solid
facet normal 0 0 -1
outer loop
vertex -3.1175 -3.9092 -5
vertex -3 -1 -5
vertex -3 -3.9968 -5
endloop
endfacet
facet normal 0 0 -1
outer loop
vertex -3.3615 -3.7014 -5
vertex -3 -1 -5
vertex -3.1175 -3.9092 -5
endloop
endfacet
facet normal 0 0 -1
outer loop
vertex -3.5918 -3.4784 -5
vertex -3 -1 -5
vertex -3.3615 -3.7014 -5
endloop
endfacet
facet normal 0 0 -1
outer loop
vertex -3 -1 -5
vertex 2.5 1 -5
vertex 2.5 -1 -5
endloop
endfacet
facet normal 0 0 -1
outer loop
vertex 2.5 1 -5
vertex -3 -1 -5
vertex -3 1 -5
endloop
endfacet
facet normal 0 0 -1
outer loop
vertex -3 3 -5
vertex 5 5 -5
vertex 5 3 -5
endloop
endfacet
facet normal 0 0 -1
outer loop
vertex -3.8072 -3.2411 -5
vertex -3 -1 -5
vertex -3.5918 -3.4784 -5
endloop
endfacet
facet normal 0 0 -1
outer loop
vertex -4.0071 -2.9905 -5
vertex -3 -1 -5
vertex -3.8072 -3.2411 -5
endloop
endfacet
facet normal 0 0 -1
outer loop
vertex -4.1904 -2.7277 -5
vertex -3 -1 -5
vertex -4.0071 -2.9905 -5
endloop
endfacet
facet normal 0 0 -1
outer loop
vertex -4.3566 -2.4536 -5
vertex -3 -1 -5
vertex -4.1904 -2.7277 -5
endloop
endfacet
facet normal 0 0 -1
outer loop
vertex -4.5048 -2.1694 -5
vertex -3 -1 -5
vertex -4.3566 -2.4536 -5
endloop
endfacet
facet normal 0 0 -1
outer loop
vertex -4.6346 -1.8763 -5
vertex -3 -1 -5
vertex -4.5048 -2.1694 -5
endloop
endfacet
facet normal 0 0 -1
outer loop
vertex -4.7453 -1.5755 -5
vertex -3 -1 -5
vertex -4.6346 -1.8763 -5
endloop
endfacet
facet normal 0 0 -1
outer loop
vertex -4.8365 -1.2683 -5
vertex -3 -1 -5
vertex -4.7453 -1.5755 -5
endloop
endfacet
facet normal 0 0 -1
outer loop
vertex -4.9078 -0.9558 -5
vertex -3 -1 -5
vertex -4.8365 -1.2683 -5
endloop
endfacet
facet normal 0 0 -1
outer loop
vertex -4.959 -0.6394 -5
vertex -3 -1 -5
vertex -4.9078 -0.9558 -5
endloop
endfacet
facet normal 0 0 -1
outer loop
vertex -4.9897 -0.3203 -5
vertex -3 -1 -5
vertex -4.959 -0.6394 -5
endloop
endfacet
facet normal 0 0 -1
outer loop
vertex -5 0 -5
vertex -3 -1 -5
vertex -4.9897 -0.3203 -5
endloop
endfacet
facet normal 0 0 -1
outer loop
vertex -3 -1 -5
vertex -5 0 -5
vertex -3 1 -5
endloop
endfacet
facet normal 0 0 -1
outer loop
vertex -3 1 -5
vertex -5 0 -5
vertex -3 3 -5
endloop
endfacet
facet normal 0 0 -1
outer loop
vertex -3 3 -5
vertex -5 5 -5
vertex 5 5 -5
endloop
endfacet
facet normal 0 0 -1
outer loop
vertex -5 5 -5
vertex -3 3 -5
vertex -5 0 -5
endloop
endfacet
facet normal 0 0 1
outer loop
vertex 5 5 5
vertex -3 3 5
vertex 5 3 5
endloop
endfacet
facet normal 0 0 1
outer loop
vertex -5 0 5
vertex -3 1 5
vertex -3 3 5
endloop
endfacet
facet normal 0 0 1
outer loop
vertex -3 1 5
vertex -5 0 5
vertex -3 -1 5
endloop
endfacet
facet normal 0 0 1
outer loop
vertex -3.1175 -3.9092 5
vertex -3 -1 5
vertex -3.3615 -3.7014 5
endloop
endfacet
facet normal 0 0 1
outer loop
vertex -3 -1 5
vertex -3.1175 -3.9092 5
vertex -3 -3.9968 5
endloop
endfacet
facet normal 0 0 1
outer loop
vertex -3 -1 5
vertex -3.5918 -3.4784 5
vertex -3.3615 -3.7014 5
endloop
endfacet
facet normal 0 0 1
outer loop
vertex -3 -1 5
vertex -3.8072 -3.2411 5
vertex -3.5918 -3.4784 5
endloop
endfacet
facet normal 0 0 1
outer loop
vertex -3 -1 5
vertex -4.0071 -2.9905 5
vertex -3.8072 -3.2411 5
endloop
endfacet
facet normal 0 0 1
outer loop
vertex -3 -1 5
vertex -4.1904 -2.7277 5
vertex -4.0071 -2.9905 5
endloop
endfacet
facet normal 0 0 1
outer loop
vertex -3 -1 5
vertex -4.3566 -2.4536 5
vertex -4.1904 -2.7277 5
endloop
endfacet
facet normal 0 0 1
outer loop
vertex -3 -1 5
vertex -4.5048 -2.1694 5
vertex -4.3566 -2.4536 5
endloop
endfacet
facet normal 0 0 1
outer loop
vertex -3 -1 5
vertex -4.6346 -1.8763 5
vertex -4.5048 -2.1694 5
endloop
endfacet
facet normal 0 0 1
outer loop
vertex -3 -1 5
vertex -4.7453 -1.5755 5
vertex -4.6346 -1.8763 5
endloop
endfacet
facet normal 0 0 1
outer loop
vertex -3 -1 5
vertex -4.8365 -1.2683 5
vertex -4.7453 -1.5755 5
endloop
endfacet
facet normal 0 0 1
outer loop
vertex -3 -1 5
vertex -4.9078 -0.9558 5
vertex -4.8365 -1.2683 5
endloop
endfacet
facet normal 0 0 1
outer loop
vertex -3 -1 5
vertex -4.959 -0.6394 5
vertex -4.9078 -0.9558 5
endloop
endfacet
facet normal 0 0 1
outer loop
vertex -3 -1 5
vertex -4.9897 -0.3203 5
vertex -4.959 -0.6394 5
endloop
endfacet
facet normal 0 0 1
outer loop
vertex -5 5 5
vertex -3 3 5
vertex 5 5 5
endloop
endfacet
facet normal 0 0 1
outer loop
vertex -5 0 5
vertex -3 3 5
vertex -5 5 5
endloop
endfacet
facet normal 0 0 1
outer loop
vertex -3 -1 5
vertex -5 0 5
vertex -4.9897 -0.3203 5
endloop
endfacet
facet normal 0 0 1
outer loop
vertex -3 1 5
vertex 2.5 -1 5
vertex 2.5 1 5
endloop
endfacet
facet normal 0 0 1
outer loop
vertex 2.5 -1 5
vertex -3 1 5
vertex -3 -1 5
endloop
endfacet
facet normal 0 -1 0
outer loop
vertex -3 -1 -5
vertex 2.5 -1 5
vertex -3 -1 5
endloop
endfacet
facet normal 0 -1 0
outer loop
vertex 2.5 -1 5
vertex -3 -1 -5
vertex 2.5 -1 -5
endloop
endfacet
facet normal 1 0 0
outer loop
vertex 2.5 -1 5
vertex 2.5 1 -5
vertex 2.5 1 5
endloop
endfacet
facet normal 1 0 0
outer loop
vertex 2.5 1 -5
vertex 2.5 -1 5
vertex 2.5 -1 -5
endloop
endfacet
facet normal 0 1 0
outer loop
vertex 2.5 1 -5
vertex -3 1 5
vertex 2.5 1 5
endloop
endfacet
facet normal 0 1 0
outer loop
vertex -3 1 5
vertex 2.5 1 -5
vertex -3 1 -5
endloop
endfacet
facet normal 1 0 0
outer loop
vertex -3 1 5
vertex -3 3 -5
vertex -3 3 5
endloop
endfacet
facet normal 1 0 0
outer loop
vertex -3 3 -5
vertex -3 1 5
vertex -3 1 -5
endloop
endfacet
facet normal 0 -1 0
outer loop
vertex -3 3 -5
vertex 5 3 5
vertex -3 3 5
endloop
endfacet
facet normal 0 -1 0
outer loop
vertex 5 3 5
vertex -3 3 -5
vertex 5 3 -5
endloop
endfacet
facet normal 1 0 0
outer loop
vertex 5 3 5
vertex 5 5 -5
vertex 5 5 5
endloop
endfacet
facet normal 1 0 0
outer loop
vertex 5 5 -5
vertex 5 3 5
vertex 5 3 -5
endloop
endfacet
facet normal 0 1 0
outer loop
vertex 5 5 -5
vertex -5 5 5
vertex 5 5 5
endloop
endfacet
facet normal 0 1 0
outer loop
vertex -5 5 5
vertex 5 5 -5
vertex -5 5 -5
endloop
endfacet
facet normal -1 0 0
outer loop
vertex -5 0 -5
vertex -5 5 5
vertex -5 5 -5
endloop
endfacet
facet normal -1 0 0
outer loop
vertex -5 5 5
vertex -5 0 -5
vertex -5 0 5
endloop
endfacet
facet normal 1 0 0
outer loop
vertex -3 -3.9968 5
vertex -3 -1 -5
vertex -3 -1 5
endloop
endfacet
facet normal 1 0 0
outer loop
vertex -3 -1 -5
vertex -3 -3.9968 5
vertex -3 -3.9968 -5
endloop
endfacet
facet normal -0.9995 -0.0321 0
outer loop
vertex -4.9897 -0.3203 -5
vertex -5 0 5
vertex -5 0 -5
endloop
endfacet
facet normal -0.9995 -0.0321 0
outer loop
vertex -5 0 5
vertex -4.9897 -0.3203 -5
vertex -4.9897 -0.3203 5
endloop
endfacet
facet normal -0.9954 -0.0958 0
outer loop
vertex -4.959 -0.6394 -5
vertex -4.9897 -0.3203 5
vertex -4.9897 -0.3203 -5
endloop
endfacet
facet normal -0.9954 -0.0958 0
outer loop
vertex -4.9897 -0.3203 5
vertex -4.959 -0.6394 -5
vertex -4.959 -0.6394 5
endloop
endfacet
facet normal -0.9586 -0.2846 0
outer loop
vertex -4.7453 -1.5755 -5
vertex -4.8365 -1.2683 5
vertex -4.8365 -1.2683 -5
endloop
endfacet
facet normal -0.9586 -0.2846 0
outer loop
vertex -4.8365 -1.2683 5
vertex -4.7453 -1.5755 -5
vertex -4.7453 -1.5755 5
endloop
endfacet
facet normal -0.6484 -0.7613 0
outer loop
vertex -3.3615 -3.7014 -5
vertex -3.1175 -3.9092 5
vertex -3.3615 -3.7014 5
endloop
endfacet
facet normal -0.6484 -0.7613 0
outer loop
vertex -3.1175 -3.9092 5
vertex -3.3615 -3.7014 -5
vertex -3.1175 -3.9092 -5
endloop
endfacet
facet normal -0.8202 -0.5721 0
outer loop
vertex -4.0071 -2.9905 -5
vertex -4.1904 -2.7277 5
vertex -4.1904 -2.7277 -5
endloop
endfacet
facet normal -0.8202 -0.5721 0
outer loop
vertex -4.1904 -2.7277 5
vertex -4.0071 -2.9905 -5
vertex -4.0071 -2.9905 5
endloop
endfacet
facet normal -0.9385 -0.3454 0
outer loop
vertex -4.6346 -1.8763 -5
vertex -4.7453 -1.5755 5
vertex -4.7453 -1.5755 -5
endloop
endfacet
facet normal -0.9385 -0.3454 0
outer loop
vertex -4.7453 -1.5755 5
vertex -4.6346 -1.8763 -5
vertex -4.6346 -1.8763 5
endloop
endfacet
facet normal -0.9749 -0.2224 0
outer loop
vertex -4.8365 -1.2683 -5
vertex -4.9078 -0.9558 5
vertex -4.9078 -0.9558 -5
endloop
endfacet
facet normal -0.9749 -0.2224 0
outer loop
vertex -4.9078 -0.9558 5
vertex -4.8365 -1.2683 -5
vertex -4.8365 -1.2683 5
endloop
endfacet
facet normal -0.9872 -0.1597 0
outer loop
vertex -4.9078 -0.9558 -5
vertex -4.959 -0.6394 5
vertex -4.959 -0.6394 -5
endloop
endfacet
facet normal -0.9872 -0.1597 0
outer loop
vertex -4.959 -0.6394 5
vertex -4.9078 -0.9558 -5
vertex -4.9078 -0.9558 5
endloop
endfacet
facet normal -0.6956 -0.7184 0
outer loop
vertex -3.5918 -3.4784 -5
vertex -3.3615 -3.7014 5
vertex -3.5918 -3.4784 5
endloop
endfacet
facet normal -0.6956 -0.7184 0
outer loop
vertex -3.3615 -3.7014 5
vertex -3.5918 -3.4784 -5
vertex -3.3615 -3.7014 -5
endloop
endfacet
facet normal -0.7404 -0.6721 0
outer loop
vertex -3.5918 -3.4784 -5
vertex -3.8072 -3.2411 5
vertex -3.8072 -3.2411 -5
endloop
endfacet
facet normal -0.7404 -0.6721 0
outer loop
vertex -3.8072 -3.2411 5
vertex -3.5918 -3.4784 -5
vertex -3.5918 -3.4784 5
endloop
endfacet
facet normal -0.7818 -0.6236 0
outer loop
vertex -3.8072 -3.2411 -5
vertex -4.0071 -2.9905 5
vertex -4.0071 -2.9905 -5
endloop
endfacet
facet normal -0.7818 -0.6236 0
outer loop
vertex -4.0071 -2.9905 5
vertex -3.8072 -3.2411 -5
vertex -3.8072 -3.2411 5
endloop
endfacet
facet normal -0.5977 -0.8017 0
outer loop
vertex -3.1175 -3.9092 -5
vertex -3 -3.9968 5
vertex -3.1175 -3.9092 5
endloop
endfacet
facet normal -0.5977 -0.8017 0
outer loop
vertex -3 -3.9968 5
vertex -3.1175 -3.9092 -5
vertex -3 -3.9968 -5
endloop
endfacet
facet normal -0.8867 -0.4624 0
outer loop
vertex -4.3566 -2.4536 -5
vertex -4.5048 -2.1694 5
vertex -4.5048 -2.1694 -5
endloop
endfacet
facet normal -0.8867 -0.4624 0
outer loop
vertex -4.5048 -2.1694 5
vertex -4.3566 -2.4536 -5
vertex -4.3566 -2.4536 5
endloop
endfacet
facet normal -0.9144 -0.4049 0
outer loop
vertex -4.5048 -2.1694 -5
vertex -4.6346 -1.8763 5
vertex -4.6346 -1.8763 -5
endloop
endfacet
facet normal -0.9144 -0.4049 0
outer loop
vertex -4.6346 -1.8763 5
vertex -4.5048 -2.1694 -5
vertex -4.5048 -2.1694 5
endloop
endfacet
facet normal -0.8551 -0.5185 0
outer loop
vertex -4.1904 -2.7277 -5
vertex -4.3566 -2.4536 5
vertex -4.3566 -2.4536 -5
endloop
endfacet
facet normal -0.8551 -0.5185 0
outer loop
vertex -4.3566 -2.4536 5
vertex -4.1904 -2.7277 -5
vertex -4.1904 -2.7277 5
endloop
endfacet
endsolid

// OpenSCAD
// Generated by SolidPython 1.1.3 on 2025-02-20 04:04:13
$fn=50;


intersection() {
	translate(v = [-5.0000000000, -5.0000000000, -5.0000000000]) {
		linear_extrude(height = 10) {
			polygon(points = [[0, 0], [2.0000000000, 0], [2.0000000000, 4.0000000000], [7.5000000000, 4.0000000000], [7.5000000000, 6.0000000000], [2.0000000000, 6.0000000000], [2.0000000000, 8.0000000000], [10, 8.0000000000], [10, 10], [0, 10]]);
		}
	}
	rotate(a = -90, v = [0, 0, 1]) {
		translate(v = [-5.0000000000, -5.0000000000, -5.0000000000]) {
			linear_extrude(height = 10) {
				polygon(points = [[5.0000000000, 10.0000000000], [5.3203510999, 9.9897269638], [5.6393858084, 9.9589500691], [5.9557931435, 9.9077957850], [6.2682729195, 9.8364743152], [6.5755410901, 9.7452787351], [6.8763350244, 9.6345837867], [7.1694186956, 9.5048443395], [7.4535877600, 9.3565935206], [7.7276745061, 9.1904405245], [7.9905526525, 9.0070681093], [8.2411419765, 8.8072297918], [8.4784127530, 8.5917467505], [8.7013899854, 8.3615044513], [8.9091574123, 8.1174490093], [9.1008612730, 7.8605833006], [9.2757138150, 7.5919628416], [9.4329965319, 7.3126914512], [9.5720631151, 7.0239167156], [9.6923421102, 6.7268252721], [9.7933392652, 6.4226379332], [9.8746395609, 6.1126046698], [9.9359089171, 5.7979994752], [9.9768955647, 5.4801151295], [9.9974310810, 5.1602578879], [9.9974310810, 4.8397421121], [9.9768955647, 4.5198848705], [9.9359089171, 4.2020005248], [9.8746395609, 3.8873953302], [9.7933392652, 3.5773620668], [9.6923421102, 3.2731747279], [9.5720631151, 2.9760832844], [9.4329965319, 2.6873085488], [9.2757138150, 2.4080371584], [9.1008612730, 2.1394166994], [8.9091574123, 1.8825509907], [8.7013899854, 1.6384955487], [8.4784127530, 1.4082532495], [8.2411419765, 1.1927702082], [7.9905526525, 0.9929318907], [7.7276745061, 0.8095594755], [7.4535877600, 0.6434064794], [7.1694186956, 0.4951556605], [6.8763350244, 0.3654162133], [6.5755410901, 0.2547212649], [6.2682729195, 0.1635256848], [5.9557931435, 0.0922042150], [5.6393858084, 0.0410499309], [5.3203510999, 0.0102730362], [5.0000000000, 0.0000000000], [0, 0], [0, 10]]);
			}
		}
	}
}
/***********************************************
*********      SolidPython code:      **********
************************************************
 
from solid import *
from solid.utils import *

import math
import matplotlib.pyplot as plt
import subprocess
import os

class Hole:
    def __init__(self, x, y, radius):
        """
        Hole defined by:
        :param x: x dimension for center point of the circle as a ratio of letter height
        :param y: y dimension for center point of the circle as a ratio of letter height
        :param radius: radius of circle as a ratio of letter height
        """
        self.x = x
        self.y = y
        self.radius = radius

class Letter3D:
    def __init__(self, name, outer_shape_points, height, holes=None):
        """
        3D Letter defined by:
        :param name: name of letter
        :param outer_shape_points: points defining the outer shape of the letter
        :param heigh: size of cube that letter fits inside
        :param holes: list of Holes
        """
        self.name = name
        self.outer_shape_points = outer_shape_points
        self.holes = holes if holes is None else []
        self.height = height


    def generate(self):
        shape = polygon(points=self.outer_shape_points)

        if self.holes:
            for hole in self.holes:
                circle_hole = circle(r=hole.radius*self.height)
                positioned_hole = translate([hole.x*self.height, hole.y*self.height])(circle_hole)
                shape = difference()(shape, positioned_hole)
        
        shape_3d = linear_extrude(height=self.height)(shape)
        shape_3d = translate([-self.height/2, -self.height/2, -self.height/2])(shape_3d)
        return shape_3d
    
    def render(self):
        scad_render_to_file(self.shape, f"output/{self.name}.scad", file_header='$fn=50;')
        subprocess.run(["C:\\Program Files\\OpenSCAD\\openscad.exe", "-o", f"output\\{self.name}.stl", f"output\\{self.name}.scad"])


class TwoLetter3D:
    def __init__(self, height, letterA, letterA_face, letterB=None, letterB_face=None):
        self.height = height
        self.letterA = letterA
        self.letterB = letterB
        self.letterA_face = letterA_face
        self.letterB_face = letterB_face

    def call_letter_generation(self, letter):
        letter = letter.upper()
        function_name = f"letter_{letter}"
        func = globals().get(function_name)
        if func is None:
            raise ValueError(f"No letter generation function defined for letter '{letter}'.")
        else:
            print(func)
        return func(self.height)
    
    def rotate_object(self, face, shape):
        face = face.lower()
        if face == "z":
            return shape
        if face == "x":
            return rotate(a=90, v=[0,1,0])(shape)
        if face == "y":
            return rotate(a=-90, v=[0,0,1])(shape)
        else:
            raise ValueError("Face must be one of 'x', 'y', or 'z'.")

    def render(self):
        if self.letterA:
            letterA3D = self.call_letter_generation(self.letterA)
            letterA3D = self.rotate_object(self.letterA_face, letterA3D)

        if self.letterB:
            letterB3D = self.call_letter_generation(self.letterB)
            letterB3D = self.rotate_object(self.letterB_face, letterB3D)
            combined = intersection()(letterA3D, letterB3D)
            file_name = self.letterA + self.letterB
            scad_render_to_file(combined, f"output/{file_name}.scad", file_header='$fn=50;')
            subprocess.run(["C:\\Program Files\\OpenSCAD\\openscad.exe", "-o", f"output\\{file_name}.stl", f"output\\{file_name}.scad"])
            return
        else:
            file_name = self.letterA
            scad_render_to_file(letterA3D, f"output/{file_name}.scad", file_header='$fn=50;')
            subprocess.run(["C:\\Program Files\\OpenSCAD\\openscad.exe", "-o", f"output\\{file_name}.stl", f"output\\{file_name}.scad"])
    
                

def arc_points(radius, start_angle, end_angle, center=[0,0], num_points=50):
    angles = [start_angle + i * (end_angle - start_angle) / (num_points - 1)
              for i in range(num_points)]
    points = [
        (center[0] + radius * math.cos(math.radians(angle)),
         center[1] + radius * math.sin(math.radians(angle)))
        for angle in angles
    ]
    return points

def letter_A(h):
    shape_points = [(0,0), (h/2, h), (h, 0), (5/6*h, 0), (2/3*h, 1/3*h), (1/3*h, 1/3*h), (h/6, 0)]
    holes = [Hole(1/2, 7/12, 1/6)]
    A = Letter3D("A", shape_points, h, holes)
    return A.generate()

def letter_B(h):
    top_arc_points = arc_points(h/4, 90, -90, center=[3/4*h, 3/4*h])
    bottom_arc_points = arc_points(h/4, 90, -90, center=[3/4*h, h/4])
    other_points = [(0,0),(0,h)]

    shape_points = top_arc_points + bottom_arc_points + other_points
    holes = [Hole(1/2, 3/4, 1/6), Hole(1/2, 1/4, 1/6)]
    B = Letter3D("B", shape_points, h, holes)
    return B.generate()

def letter_C(h):
    outer_arc_points = arc_points(h/2, 30, 330, center=[h/2,h/2])
    inner_arc_points = arc_points(h/4, 30, 330, center=[h/2,h/2])[::-1]
    shape_points = outer_arc_points + inner_arc_points
    # print(shape_points)
    C = Letter3D("C", shape_points, h)
    return C.generate()


def letter_D(h):
    outer_arc_points = arc_points(h/2, 90, -90, center= [h/2, h/2])
    shape_points = outer_arc_points + [(0,0), (0, h)]
    holes = [Hole(1/2, 1/2, 1/6)]
    D = Letter3D("D", shape_points, h, holes)
    return D.generate()

def letter_E(h):
    points = [(0,0), (h,0), (h,h/5), (h/5,h/5), (h/5,2/5*h), (3/4*h,2/5*h), (3/4*h,3/5*h), (h/5,3/5*h), (h/5,4/5*h), (h,4/5*h), (h,h), (0,h)]
    E = Letter3D("E", points, h)
    return E.generate()

def letter_F(h):
    points = [(0,0), (h/5,0), (h/5,2/5*h), (3/4*h,2/5*h), (3/4*h,3/5*h), (h/5,3/5*h), (h/5,4/5*h), (h,4/5*h), (h,h), (0,h)]
    F = Letter3D("F", points, h)
    return F.generate()

if __name__ == "__main__":
    os.makedirs("output", exist_ok=True)
    # Generate all combos
    letters = [chr(x) for x in range(ord('A'), ord('F') + 1)]
    for letter in letters:
        for other_letter in letters:
            shape = TwoLetter3D(10, letter, "z", other_letter, "y")
            shape.render()
 
 
************************************************/
